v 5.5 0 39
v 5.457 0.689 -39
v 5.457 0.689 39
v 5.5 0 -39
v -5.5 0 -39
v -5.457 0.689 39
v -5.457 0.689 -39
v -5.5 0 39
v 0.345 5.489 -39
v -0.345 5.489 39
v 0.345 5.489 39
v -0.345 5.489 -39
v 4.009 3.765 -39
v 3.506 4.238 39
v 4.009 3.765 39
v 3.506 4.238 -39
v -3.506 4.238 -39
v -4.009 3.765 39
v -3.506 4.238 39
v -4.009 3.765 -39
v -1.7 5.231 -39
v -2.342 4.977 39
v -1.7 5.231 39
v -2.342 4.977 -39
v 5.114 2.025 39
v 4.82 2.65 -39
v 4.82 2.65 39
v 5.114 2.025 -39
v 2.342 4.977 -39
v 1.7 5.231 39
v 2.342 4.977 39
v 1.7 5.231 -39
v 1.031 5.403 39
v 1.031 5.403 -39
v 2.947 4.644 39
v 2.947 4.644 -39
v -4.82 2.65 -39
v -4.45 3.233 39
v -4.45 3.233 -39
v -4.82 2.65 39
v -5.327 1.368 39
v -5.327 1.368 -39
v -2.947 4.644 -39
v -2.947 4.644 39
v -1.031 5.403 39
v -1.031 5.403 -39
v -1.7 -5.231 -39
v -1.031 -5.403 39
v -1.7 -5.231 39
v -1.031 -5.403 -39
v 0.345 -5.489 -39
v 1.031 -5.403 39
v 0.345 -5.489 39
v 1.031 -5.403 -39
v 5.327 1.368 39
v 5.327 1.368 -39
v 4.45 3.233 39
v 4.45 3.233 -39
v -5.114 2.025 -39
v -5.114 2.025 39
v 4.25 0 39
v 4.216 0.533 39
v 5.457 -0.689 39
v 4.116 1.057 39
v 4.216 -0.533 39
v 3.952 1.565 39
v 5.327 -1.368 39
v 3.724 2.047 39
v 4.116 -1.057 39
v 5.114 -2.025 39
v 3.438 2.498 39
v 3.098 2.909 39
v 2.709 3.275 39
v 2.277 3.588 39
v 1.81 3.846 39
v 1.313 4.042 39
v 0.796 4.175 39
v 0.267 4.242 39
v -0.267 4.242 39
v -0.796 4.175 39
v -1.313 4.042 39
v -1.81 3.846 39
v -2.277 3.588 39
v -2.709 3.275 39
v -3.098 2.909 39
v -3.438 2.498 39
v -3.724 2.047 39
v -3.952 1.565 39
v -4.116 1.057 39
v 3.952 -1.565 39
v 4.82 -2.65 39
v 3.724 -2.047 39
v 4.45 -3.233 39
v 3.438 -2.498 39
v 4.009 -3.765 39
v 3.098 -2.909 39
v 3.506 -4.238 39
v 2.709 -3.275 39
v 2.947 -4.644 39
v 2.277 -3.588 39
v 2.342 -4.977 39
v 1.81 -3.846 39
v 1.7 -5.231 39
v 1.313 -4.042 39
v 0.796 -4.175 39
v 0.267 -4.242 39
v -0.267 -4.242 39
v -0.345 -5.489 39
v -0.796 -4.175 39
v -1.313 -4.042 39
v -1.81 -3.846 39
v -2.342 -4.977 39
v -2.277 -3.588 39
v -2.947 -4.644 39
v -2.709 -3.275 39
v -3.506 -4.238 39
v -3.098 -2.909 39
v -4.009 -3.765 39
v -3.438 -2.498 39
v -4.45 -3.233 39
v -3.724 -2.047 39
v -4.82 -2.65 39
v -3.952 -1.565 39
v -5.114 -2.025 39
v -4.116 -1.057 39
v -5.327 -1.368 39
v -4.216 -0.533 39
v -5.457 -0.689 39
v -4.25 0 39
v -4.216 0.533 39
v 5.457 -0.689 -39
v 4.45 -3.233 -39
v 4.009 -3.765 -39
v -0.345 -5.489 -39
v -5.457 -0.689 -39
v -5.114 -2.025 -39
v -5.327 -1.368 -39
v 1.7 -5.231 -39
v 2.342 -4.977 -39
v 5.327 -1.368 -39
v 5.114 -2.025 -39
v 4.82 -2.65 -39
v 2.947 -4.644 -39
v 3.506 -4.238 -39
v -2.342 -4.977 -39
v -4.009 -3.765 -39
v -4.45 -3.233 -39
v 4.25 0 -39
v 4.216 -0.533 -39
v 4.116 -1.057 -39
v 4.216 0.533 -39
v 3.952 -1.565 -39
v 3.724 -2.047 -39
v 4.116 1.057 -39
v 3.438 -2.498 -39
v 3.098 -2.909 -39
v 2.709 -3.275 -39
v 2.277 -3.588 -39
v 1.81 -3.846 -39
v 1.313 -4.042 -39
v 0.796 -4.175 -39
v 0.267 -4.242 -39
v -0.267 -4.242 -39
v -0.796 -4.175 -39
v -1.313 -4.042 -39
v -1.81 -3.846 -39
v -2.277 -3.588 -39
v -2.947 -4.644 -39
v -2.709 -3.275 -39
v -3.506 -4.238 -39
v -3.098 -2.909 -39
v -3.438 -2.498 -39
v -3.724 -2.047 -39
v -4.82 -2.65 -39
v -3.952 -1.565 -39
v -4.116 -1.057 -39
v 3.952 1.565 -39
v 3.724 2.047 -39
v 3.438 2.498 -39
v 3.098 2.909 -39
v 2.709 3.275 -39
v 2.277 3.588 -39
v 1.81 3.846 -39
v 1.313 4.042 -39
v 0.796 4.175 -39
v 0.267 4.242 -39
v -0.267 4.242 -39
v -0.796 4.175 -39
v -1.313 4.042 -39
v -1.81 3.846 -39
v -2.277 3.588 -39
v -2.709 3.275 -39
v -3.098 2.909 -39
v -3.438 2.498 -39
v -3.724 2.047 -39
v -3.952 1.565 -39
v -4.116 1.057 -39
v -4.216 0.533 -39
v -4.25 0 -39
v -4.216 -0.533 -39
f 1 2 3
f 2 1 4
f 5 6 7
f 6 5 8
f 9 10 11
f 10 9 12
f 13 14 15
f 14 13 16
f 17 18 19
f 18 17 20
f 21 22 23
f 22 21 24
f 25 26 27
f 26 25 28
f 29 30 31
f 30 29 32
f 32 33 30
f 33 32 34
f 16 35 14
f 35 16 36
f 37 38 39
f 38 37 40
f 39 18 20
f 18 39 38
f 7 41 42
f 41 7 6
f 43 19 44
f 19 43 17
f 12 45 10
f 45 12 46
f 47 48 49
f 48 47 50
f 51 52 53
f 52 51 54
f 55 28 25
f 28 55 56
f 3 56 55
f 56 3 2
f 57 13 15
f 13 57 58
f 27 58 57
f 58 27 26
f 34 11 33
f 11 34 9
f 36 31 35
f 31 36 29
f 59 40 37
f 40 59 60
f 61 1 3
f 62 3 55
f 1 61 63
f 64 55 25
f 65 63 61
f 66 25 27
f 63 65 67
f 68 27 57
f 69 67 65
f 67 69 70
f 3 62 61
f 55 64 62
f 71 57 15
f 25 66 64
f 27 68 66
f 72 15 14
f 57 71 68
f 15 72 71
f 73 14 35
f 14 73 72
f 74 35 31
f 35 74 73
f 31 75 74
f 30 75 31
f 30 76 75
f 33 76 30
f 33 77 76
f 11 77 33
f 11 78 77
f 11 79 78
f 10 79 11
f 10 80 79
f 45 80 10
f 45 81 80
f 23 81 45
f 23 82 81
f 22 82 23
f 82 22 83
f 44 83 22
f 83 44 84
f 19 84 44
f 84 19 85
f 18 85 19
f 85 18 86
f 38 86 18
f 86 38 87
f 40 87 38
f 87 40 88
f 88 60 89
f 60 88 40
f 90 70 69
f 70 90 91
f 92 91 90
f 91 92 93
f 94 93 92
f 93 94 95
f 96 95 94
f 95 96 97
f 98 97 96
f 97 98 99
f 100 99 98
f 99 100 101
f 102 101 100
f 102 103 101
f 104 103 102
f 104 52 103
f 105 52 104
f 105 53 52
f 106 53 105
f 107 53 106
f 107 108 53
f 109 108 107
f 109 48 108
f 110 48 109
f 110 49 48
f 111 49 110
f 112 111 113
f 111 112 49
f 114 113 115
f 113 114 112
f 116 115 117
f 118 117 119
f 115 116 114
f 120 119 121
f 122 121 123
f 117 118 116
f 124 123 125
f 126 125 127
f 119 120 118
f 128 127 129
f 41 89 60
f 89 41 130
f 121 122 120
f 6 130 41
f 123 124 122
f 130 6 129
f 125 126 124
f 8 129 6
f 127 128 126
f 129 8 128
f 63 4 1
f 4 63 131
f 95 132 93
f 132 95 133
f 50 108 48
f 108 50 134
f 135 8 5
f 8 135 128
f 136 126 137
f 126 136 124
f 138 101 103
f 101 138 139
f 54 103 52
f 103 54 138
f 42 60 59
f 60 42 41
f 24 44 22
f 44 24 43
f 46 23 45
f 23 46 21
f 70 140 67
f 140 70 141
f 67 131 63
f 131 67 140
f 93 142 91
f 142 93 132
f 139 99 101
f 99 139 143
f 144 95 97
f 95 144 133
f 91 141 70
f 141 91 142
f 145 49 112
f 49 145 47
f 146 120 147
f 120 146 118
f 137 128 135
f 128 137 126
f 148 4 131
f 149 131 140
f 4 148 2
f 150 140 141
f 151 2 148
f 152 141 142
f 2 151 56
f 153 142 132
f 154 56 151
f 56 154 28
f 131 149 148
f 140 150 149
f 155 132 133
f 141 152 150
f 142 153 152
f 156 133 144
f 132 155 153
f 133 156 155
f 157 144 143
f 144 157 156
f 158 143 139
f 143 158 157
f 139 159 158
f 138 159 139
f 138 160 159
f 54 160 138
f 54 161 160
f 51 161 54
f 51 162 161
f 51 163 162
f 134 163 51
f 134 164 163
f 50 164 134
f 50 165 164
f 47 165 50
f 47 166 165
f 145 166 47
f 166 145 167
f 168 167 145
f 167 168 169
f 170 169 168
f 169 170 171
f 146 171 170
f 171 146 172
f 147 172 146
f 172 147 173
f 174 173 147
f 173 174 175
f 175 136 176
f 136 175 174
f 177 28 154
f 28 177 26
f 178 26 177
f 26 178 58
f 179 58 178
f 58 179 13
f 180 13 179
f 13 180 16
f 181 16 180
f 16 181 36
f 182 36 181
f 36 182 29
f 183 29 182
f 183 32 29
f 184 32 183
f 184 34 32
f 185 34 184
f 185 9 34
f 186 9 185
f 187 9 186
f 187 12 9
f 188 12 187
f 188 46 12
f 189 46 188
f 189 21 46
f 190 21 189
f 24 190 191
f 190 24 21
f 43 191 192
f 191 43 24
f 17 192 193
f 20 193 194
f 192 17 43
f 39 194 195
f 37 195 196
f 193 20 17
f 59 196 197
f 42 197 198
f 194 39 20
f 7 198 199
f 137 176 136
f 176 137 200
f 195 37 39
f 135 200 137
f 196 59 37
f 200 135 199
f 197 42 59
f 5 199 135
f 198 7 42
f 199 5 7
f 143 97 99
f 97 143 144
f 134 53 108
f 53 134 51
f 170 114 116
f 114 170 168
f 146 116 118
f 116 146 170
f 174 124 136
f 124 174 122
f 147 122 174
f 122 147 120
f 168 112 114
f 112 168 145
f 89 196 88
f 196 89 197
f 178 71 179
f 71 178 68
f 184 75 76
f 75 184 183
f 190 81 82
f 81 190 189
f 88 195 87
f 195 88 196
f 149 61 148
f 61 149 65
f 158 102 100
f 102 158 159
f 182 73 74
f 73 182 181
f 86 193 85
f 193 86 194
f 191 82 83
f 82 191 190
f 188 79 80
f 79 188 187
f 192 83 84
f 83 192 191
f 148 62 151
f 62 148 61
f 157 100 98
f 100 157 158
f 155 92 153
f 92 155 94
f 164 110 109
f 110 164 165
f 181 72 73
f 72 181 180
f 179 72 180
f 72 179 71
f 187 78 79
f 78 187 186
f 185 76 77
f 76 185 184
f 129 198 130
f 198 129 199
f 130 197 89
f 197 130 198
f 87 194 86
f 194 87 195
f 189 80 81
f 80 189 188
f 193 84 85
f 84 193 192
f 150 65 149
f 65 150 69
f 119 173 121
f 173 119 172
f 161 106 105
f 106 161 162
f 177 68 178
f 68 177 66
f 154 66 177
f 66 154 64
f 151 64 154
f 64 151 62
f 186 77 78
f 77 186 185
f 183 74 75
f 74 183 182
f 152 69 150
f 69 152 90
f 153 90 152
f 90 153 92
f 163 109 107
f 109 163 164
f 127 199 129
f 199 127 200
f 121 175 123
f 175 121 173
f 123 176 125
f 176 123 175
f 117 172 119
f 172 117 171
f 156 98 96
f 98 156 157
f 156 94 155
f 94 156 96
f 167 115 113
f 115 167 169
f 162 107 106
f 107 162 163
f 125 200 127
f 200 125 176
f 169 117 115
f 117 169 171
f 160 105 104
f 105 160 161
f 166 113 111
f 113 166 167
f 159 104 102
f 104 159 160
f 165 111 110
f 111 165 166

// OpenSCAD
$fn = 50;


difference() {
	union() {
		translate(v = [0, 0, -39.0000000000]) {
			cylinder(h = 78, r = 5.5000000000);
		}
	}
	union() {
		translate(v = [0, 0, -100.0000000000]) {
			cylinder(h = 200, r = 4.2500000000);
		}
	}
}
